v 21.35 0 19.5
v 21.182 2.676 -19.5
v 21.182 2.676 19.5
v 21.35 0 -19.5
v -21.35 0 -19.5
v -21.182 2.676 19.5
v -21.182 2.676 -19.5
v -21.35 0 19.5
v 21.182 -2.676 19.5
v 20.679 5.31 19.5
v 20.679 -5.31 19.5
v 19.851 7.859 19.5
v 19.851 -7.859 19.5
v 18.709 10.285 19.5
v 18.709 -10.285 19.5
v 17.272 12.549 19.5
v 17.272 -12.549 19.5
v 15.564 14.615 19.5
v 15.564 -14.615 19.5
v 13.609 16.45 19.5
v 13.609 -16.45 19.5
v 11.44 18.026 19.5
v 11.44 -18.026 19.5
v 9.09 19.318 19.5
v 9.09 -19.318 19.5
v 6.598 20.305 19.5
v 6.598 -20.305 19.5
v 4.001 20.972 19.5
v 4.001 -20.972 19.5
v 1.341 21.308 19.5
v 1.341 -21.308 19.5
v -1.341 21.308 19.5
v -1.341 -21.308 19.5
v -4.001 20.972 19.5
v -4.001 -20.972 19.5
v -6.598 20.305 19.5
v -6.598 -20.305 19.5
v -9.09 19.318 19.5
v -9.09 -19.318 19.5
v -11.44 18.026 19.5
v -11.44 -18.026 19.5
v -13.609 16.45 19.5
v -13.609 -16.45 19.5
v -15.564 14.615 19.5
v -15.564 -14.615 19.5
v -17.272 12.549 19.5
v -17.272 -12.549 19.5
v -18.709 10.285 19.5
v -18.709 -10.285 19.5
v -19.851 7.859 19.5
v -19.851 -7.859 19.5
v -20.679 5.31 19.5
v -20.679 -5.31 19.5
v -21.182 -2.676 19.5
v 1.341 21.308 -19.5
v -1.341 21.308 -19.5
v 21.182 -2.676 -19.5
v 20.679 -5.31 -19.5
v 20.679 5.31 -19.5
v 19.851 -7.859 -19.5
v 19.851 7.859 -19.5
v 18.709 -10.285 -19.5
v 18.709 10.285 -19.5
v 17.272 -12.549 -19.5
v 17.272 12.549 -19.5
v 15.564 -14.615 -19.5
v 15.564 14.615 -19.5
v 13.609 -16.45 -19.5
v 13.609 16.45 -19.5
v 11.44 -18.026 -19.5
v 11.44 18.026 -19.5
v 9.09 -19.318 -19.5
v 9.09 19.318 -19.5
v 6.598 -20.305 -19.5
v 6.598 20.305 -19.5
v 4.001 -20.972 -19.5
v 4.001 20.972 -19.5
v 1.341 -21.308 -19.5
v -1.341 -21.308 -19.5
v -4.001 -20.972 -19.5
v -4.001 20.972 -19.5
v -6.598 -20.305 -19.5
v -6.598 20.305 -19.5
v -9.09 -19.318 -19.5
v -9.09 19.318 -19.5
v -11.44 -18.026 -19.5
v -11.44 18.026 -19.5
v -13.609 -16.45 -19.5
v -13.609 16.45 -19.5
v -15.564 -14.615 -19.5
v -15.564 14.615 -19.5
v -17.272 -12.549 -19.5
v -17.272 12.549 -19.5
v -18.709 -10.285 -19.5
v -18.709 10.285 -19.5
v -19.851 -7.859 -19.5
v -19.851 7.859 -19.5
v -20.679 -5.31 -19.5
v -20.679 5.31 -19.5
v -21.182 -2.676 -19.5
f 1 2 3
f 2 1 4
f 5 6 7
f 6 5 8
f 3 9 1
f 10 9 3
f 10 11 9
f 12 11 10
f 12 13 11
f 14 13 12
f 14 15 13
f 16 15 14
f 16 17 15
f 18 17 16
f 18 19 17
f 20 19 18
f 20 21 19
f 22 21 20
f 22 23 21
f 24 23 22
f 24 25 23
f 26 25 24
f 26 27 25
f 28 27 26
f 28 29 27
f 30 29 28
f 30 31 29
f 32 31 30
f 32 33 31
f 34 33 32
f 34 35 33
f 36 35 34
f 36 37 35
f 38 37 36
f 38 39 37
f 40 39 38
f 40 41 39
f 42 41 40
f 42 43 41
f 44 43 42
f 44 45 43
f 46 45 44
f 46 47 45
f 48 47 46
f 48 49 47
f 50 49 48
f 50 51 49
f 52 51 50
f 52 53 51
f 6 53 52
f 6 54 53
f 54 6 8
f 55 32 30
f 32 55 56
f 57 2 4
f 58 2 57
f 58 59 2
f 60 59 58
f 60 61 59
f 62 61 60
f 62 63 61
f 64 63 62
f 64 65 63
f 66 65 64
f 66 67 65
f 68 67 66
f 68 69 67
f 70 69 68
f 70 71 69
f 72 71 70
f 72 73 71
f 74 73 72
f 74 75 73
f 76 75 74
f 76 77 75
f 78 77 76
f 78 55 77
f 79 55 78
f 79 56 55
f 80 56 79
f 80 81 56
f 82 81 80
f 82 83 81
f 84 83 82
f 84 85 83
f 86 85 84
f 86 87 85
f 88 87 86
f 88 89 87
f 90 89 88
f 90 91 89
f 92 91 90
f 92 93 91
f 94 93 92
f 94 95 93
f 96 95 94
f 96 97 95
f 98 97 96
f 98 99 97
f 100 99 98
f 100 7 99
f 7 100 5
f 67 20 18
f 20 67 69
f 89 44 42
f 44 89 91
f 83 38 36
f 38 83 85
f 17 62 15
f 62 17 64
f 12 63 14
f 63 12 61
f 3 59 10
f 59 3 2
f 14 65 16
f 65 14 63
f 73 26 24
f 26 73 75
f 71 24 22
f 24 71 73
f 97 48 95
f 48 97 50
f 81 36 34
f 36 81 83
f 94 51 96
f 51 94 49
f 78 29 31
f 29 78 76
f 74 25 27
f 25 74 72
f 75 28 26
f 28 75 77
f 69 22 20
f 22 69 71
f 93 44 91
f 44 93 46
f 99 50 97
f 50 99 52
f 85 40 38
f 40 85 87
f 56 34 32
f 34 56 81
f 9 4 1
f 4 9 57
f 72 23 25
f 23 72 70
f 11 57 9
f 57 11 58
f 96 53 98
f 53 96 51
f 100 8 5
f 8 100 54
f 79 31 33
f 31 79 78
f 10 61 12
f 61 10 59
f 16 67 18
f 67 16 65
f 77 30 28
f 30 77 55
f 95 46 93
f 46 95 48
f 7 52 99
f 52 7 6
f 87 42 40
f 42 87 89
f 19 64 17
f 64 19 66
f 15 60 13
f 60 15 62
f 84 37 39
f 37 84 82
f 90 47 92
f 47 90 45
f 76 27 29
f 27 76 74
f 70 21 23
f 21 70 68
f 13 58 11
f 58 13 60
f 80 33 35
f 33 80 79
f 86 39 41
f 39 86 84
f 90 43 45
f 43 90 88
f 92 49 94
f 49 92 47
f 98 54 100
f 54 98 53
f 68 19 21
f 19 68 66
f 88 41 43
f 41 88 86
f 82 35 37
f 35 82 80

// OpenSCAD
$fn = 50;


difference() {
	union() {
		translate(v = [0, 0, -19.5000000000]) {
			cylinder(h = 39, r = 21.3500000000);
		}
	}
	union() {
		translate(v = [0, 0, -100.0000000000]) {
			cylinder(h = 200, r = 0);
		}
	}
}
